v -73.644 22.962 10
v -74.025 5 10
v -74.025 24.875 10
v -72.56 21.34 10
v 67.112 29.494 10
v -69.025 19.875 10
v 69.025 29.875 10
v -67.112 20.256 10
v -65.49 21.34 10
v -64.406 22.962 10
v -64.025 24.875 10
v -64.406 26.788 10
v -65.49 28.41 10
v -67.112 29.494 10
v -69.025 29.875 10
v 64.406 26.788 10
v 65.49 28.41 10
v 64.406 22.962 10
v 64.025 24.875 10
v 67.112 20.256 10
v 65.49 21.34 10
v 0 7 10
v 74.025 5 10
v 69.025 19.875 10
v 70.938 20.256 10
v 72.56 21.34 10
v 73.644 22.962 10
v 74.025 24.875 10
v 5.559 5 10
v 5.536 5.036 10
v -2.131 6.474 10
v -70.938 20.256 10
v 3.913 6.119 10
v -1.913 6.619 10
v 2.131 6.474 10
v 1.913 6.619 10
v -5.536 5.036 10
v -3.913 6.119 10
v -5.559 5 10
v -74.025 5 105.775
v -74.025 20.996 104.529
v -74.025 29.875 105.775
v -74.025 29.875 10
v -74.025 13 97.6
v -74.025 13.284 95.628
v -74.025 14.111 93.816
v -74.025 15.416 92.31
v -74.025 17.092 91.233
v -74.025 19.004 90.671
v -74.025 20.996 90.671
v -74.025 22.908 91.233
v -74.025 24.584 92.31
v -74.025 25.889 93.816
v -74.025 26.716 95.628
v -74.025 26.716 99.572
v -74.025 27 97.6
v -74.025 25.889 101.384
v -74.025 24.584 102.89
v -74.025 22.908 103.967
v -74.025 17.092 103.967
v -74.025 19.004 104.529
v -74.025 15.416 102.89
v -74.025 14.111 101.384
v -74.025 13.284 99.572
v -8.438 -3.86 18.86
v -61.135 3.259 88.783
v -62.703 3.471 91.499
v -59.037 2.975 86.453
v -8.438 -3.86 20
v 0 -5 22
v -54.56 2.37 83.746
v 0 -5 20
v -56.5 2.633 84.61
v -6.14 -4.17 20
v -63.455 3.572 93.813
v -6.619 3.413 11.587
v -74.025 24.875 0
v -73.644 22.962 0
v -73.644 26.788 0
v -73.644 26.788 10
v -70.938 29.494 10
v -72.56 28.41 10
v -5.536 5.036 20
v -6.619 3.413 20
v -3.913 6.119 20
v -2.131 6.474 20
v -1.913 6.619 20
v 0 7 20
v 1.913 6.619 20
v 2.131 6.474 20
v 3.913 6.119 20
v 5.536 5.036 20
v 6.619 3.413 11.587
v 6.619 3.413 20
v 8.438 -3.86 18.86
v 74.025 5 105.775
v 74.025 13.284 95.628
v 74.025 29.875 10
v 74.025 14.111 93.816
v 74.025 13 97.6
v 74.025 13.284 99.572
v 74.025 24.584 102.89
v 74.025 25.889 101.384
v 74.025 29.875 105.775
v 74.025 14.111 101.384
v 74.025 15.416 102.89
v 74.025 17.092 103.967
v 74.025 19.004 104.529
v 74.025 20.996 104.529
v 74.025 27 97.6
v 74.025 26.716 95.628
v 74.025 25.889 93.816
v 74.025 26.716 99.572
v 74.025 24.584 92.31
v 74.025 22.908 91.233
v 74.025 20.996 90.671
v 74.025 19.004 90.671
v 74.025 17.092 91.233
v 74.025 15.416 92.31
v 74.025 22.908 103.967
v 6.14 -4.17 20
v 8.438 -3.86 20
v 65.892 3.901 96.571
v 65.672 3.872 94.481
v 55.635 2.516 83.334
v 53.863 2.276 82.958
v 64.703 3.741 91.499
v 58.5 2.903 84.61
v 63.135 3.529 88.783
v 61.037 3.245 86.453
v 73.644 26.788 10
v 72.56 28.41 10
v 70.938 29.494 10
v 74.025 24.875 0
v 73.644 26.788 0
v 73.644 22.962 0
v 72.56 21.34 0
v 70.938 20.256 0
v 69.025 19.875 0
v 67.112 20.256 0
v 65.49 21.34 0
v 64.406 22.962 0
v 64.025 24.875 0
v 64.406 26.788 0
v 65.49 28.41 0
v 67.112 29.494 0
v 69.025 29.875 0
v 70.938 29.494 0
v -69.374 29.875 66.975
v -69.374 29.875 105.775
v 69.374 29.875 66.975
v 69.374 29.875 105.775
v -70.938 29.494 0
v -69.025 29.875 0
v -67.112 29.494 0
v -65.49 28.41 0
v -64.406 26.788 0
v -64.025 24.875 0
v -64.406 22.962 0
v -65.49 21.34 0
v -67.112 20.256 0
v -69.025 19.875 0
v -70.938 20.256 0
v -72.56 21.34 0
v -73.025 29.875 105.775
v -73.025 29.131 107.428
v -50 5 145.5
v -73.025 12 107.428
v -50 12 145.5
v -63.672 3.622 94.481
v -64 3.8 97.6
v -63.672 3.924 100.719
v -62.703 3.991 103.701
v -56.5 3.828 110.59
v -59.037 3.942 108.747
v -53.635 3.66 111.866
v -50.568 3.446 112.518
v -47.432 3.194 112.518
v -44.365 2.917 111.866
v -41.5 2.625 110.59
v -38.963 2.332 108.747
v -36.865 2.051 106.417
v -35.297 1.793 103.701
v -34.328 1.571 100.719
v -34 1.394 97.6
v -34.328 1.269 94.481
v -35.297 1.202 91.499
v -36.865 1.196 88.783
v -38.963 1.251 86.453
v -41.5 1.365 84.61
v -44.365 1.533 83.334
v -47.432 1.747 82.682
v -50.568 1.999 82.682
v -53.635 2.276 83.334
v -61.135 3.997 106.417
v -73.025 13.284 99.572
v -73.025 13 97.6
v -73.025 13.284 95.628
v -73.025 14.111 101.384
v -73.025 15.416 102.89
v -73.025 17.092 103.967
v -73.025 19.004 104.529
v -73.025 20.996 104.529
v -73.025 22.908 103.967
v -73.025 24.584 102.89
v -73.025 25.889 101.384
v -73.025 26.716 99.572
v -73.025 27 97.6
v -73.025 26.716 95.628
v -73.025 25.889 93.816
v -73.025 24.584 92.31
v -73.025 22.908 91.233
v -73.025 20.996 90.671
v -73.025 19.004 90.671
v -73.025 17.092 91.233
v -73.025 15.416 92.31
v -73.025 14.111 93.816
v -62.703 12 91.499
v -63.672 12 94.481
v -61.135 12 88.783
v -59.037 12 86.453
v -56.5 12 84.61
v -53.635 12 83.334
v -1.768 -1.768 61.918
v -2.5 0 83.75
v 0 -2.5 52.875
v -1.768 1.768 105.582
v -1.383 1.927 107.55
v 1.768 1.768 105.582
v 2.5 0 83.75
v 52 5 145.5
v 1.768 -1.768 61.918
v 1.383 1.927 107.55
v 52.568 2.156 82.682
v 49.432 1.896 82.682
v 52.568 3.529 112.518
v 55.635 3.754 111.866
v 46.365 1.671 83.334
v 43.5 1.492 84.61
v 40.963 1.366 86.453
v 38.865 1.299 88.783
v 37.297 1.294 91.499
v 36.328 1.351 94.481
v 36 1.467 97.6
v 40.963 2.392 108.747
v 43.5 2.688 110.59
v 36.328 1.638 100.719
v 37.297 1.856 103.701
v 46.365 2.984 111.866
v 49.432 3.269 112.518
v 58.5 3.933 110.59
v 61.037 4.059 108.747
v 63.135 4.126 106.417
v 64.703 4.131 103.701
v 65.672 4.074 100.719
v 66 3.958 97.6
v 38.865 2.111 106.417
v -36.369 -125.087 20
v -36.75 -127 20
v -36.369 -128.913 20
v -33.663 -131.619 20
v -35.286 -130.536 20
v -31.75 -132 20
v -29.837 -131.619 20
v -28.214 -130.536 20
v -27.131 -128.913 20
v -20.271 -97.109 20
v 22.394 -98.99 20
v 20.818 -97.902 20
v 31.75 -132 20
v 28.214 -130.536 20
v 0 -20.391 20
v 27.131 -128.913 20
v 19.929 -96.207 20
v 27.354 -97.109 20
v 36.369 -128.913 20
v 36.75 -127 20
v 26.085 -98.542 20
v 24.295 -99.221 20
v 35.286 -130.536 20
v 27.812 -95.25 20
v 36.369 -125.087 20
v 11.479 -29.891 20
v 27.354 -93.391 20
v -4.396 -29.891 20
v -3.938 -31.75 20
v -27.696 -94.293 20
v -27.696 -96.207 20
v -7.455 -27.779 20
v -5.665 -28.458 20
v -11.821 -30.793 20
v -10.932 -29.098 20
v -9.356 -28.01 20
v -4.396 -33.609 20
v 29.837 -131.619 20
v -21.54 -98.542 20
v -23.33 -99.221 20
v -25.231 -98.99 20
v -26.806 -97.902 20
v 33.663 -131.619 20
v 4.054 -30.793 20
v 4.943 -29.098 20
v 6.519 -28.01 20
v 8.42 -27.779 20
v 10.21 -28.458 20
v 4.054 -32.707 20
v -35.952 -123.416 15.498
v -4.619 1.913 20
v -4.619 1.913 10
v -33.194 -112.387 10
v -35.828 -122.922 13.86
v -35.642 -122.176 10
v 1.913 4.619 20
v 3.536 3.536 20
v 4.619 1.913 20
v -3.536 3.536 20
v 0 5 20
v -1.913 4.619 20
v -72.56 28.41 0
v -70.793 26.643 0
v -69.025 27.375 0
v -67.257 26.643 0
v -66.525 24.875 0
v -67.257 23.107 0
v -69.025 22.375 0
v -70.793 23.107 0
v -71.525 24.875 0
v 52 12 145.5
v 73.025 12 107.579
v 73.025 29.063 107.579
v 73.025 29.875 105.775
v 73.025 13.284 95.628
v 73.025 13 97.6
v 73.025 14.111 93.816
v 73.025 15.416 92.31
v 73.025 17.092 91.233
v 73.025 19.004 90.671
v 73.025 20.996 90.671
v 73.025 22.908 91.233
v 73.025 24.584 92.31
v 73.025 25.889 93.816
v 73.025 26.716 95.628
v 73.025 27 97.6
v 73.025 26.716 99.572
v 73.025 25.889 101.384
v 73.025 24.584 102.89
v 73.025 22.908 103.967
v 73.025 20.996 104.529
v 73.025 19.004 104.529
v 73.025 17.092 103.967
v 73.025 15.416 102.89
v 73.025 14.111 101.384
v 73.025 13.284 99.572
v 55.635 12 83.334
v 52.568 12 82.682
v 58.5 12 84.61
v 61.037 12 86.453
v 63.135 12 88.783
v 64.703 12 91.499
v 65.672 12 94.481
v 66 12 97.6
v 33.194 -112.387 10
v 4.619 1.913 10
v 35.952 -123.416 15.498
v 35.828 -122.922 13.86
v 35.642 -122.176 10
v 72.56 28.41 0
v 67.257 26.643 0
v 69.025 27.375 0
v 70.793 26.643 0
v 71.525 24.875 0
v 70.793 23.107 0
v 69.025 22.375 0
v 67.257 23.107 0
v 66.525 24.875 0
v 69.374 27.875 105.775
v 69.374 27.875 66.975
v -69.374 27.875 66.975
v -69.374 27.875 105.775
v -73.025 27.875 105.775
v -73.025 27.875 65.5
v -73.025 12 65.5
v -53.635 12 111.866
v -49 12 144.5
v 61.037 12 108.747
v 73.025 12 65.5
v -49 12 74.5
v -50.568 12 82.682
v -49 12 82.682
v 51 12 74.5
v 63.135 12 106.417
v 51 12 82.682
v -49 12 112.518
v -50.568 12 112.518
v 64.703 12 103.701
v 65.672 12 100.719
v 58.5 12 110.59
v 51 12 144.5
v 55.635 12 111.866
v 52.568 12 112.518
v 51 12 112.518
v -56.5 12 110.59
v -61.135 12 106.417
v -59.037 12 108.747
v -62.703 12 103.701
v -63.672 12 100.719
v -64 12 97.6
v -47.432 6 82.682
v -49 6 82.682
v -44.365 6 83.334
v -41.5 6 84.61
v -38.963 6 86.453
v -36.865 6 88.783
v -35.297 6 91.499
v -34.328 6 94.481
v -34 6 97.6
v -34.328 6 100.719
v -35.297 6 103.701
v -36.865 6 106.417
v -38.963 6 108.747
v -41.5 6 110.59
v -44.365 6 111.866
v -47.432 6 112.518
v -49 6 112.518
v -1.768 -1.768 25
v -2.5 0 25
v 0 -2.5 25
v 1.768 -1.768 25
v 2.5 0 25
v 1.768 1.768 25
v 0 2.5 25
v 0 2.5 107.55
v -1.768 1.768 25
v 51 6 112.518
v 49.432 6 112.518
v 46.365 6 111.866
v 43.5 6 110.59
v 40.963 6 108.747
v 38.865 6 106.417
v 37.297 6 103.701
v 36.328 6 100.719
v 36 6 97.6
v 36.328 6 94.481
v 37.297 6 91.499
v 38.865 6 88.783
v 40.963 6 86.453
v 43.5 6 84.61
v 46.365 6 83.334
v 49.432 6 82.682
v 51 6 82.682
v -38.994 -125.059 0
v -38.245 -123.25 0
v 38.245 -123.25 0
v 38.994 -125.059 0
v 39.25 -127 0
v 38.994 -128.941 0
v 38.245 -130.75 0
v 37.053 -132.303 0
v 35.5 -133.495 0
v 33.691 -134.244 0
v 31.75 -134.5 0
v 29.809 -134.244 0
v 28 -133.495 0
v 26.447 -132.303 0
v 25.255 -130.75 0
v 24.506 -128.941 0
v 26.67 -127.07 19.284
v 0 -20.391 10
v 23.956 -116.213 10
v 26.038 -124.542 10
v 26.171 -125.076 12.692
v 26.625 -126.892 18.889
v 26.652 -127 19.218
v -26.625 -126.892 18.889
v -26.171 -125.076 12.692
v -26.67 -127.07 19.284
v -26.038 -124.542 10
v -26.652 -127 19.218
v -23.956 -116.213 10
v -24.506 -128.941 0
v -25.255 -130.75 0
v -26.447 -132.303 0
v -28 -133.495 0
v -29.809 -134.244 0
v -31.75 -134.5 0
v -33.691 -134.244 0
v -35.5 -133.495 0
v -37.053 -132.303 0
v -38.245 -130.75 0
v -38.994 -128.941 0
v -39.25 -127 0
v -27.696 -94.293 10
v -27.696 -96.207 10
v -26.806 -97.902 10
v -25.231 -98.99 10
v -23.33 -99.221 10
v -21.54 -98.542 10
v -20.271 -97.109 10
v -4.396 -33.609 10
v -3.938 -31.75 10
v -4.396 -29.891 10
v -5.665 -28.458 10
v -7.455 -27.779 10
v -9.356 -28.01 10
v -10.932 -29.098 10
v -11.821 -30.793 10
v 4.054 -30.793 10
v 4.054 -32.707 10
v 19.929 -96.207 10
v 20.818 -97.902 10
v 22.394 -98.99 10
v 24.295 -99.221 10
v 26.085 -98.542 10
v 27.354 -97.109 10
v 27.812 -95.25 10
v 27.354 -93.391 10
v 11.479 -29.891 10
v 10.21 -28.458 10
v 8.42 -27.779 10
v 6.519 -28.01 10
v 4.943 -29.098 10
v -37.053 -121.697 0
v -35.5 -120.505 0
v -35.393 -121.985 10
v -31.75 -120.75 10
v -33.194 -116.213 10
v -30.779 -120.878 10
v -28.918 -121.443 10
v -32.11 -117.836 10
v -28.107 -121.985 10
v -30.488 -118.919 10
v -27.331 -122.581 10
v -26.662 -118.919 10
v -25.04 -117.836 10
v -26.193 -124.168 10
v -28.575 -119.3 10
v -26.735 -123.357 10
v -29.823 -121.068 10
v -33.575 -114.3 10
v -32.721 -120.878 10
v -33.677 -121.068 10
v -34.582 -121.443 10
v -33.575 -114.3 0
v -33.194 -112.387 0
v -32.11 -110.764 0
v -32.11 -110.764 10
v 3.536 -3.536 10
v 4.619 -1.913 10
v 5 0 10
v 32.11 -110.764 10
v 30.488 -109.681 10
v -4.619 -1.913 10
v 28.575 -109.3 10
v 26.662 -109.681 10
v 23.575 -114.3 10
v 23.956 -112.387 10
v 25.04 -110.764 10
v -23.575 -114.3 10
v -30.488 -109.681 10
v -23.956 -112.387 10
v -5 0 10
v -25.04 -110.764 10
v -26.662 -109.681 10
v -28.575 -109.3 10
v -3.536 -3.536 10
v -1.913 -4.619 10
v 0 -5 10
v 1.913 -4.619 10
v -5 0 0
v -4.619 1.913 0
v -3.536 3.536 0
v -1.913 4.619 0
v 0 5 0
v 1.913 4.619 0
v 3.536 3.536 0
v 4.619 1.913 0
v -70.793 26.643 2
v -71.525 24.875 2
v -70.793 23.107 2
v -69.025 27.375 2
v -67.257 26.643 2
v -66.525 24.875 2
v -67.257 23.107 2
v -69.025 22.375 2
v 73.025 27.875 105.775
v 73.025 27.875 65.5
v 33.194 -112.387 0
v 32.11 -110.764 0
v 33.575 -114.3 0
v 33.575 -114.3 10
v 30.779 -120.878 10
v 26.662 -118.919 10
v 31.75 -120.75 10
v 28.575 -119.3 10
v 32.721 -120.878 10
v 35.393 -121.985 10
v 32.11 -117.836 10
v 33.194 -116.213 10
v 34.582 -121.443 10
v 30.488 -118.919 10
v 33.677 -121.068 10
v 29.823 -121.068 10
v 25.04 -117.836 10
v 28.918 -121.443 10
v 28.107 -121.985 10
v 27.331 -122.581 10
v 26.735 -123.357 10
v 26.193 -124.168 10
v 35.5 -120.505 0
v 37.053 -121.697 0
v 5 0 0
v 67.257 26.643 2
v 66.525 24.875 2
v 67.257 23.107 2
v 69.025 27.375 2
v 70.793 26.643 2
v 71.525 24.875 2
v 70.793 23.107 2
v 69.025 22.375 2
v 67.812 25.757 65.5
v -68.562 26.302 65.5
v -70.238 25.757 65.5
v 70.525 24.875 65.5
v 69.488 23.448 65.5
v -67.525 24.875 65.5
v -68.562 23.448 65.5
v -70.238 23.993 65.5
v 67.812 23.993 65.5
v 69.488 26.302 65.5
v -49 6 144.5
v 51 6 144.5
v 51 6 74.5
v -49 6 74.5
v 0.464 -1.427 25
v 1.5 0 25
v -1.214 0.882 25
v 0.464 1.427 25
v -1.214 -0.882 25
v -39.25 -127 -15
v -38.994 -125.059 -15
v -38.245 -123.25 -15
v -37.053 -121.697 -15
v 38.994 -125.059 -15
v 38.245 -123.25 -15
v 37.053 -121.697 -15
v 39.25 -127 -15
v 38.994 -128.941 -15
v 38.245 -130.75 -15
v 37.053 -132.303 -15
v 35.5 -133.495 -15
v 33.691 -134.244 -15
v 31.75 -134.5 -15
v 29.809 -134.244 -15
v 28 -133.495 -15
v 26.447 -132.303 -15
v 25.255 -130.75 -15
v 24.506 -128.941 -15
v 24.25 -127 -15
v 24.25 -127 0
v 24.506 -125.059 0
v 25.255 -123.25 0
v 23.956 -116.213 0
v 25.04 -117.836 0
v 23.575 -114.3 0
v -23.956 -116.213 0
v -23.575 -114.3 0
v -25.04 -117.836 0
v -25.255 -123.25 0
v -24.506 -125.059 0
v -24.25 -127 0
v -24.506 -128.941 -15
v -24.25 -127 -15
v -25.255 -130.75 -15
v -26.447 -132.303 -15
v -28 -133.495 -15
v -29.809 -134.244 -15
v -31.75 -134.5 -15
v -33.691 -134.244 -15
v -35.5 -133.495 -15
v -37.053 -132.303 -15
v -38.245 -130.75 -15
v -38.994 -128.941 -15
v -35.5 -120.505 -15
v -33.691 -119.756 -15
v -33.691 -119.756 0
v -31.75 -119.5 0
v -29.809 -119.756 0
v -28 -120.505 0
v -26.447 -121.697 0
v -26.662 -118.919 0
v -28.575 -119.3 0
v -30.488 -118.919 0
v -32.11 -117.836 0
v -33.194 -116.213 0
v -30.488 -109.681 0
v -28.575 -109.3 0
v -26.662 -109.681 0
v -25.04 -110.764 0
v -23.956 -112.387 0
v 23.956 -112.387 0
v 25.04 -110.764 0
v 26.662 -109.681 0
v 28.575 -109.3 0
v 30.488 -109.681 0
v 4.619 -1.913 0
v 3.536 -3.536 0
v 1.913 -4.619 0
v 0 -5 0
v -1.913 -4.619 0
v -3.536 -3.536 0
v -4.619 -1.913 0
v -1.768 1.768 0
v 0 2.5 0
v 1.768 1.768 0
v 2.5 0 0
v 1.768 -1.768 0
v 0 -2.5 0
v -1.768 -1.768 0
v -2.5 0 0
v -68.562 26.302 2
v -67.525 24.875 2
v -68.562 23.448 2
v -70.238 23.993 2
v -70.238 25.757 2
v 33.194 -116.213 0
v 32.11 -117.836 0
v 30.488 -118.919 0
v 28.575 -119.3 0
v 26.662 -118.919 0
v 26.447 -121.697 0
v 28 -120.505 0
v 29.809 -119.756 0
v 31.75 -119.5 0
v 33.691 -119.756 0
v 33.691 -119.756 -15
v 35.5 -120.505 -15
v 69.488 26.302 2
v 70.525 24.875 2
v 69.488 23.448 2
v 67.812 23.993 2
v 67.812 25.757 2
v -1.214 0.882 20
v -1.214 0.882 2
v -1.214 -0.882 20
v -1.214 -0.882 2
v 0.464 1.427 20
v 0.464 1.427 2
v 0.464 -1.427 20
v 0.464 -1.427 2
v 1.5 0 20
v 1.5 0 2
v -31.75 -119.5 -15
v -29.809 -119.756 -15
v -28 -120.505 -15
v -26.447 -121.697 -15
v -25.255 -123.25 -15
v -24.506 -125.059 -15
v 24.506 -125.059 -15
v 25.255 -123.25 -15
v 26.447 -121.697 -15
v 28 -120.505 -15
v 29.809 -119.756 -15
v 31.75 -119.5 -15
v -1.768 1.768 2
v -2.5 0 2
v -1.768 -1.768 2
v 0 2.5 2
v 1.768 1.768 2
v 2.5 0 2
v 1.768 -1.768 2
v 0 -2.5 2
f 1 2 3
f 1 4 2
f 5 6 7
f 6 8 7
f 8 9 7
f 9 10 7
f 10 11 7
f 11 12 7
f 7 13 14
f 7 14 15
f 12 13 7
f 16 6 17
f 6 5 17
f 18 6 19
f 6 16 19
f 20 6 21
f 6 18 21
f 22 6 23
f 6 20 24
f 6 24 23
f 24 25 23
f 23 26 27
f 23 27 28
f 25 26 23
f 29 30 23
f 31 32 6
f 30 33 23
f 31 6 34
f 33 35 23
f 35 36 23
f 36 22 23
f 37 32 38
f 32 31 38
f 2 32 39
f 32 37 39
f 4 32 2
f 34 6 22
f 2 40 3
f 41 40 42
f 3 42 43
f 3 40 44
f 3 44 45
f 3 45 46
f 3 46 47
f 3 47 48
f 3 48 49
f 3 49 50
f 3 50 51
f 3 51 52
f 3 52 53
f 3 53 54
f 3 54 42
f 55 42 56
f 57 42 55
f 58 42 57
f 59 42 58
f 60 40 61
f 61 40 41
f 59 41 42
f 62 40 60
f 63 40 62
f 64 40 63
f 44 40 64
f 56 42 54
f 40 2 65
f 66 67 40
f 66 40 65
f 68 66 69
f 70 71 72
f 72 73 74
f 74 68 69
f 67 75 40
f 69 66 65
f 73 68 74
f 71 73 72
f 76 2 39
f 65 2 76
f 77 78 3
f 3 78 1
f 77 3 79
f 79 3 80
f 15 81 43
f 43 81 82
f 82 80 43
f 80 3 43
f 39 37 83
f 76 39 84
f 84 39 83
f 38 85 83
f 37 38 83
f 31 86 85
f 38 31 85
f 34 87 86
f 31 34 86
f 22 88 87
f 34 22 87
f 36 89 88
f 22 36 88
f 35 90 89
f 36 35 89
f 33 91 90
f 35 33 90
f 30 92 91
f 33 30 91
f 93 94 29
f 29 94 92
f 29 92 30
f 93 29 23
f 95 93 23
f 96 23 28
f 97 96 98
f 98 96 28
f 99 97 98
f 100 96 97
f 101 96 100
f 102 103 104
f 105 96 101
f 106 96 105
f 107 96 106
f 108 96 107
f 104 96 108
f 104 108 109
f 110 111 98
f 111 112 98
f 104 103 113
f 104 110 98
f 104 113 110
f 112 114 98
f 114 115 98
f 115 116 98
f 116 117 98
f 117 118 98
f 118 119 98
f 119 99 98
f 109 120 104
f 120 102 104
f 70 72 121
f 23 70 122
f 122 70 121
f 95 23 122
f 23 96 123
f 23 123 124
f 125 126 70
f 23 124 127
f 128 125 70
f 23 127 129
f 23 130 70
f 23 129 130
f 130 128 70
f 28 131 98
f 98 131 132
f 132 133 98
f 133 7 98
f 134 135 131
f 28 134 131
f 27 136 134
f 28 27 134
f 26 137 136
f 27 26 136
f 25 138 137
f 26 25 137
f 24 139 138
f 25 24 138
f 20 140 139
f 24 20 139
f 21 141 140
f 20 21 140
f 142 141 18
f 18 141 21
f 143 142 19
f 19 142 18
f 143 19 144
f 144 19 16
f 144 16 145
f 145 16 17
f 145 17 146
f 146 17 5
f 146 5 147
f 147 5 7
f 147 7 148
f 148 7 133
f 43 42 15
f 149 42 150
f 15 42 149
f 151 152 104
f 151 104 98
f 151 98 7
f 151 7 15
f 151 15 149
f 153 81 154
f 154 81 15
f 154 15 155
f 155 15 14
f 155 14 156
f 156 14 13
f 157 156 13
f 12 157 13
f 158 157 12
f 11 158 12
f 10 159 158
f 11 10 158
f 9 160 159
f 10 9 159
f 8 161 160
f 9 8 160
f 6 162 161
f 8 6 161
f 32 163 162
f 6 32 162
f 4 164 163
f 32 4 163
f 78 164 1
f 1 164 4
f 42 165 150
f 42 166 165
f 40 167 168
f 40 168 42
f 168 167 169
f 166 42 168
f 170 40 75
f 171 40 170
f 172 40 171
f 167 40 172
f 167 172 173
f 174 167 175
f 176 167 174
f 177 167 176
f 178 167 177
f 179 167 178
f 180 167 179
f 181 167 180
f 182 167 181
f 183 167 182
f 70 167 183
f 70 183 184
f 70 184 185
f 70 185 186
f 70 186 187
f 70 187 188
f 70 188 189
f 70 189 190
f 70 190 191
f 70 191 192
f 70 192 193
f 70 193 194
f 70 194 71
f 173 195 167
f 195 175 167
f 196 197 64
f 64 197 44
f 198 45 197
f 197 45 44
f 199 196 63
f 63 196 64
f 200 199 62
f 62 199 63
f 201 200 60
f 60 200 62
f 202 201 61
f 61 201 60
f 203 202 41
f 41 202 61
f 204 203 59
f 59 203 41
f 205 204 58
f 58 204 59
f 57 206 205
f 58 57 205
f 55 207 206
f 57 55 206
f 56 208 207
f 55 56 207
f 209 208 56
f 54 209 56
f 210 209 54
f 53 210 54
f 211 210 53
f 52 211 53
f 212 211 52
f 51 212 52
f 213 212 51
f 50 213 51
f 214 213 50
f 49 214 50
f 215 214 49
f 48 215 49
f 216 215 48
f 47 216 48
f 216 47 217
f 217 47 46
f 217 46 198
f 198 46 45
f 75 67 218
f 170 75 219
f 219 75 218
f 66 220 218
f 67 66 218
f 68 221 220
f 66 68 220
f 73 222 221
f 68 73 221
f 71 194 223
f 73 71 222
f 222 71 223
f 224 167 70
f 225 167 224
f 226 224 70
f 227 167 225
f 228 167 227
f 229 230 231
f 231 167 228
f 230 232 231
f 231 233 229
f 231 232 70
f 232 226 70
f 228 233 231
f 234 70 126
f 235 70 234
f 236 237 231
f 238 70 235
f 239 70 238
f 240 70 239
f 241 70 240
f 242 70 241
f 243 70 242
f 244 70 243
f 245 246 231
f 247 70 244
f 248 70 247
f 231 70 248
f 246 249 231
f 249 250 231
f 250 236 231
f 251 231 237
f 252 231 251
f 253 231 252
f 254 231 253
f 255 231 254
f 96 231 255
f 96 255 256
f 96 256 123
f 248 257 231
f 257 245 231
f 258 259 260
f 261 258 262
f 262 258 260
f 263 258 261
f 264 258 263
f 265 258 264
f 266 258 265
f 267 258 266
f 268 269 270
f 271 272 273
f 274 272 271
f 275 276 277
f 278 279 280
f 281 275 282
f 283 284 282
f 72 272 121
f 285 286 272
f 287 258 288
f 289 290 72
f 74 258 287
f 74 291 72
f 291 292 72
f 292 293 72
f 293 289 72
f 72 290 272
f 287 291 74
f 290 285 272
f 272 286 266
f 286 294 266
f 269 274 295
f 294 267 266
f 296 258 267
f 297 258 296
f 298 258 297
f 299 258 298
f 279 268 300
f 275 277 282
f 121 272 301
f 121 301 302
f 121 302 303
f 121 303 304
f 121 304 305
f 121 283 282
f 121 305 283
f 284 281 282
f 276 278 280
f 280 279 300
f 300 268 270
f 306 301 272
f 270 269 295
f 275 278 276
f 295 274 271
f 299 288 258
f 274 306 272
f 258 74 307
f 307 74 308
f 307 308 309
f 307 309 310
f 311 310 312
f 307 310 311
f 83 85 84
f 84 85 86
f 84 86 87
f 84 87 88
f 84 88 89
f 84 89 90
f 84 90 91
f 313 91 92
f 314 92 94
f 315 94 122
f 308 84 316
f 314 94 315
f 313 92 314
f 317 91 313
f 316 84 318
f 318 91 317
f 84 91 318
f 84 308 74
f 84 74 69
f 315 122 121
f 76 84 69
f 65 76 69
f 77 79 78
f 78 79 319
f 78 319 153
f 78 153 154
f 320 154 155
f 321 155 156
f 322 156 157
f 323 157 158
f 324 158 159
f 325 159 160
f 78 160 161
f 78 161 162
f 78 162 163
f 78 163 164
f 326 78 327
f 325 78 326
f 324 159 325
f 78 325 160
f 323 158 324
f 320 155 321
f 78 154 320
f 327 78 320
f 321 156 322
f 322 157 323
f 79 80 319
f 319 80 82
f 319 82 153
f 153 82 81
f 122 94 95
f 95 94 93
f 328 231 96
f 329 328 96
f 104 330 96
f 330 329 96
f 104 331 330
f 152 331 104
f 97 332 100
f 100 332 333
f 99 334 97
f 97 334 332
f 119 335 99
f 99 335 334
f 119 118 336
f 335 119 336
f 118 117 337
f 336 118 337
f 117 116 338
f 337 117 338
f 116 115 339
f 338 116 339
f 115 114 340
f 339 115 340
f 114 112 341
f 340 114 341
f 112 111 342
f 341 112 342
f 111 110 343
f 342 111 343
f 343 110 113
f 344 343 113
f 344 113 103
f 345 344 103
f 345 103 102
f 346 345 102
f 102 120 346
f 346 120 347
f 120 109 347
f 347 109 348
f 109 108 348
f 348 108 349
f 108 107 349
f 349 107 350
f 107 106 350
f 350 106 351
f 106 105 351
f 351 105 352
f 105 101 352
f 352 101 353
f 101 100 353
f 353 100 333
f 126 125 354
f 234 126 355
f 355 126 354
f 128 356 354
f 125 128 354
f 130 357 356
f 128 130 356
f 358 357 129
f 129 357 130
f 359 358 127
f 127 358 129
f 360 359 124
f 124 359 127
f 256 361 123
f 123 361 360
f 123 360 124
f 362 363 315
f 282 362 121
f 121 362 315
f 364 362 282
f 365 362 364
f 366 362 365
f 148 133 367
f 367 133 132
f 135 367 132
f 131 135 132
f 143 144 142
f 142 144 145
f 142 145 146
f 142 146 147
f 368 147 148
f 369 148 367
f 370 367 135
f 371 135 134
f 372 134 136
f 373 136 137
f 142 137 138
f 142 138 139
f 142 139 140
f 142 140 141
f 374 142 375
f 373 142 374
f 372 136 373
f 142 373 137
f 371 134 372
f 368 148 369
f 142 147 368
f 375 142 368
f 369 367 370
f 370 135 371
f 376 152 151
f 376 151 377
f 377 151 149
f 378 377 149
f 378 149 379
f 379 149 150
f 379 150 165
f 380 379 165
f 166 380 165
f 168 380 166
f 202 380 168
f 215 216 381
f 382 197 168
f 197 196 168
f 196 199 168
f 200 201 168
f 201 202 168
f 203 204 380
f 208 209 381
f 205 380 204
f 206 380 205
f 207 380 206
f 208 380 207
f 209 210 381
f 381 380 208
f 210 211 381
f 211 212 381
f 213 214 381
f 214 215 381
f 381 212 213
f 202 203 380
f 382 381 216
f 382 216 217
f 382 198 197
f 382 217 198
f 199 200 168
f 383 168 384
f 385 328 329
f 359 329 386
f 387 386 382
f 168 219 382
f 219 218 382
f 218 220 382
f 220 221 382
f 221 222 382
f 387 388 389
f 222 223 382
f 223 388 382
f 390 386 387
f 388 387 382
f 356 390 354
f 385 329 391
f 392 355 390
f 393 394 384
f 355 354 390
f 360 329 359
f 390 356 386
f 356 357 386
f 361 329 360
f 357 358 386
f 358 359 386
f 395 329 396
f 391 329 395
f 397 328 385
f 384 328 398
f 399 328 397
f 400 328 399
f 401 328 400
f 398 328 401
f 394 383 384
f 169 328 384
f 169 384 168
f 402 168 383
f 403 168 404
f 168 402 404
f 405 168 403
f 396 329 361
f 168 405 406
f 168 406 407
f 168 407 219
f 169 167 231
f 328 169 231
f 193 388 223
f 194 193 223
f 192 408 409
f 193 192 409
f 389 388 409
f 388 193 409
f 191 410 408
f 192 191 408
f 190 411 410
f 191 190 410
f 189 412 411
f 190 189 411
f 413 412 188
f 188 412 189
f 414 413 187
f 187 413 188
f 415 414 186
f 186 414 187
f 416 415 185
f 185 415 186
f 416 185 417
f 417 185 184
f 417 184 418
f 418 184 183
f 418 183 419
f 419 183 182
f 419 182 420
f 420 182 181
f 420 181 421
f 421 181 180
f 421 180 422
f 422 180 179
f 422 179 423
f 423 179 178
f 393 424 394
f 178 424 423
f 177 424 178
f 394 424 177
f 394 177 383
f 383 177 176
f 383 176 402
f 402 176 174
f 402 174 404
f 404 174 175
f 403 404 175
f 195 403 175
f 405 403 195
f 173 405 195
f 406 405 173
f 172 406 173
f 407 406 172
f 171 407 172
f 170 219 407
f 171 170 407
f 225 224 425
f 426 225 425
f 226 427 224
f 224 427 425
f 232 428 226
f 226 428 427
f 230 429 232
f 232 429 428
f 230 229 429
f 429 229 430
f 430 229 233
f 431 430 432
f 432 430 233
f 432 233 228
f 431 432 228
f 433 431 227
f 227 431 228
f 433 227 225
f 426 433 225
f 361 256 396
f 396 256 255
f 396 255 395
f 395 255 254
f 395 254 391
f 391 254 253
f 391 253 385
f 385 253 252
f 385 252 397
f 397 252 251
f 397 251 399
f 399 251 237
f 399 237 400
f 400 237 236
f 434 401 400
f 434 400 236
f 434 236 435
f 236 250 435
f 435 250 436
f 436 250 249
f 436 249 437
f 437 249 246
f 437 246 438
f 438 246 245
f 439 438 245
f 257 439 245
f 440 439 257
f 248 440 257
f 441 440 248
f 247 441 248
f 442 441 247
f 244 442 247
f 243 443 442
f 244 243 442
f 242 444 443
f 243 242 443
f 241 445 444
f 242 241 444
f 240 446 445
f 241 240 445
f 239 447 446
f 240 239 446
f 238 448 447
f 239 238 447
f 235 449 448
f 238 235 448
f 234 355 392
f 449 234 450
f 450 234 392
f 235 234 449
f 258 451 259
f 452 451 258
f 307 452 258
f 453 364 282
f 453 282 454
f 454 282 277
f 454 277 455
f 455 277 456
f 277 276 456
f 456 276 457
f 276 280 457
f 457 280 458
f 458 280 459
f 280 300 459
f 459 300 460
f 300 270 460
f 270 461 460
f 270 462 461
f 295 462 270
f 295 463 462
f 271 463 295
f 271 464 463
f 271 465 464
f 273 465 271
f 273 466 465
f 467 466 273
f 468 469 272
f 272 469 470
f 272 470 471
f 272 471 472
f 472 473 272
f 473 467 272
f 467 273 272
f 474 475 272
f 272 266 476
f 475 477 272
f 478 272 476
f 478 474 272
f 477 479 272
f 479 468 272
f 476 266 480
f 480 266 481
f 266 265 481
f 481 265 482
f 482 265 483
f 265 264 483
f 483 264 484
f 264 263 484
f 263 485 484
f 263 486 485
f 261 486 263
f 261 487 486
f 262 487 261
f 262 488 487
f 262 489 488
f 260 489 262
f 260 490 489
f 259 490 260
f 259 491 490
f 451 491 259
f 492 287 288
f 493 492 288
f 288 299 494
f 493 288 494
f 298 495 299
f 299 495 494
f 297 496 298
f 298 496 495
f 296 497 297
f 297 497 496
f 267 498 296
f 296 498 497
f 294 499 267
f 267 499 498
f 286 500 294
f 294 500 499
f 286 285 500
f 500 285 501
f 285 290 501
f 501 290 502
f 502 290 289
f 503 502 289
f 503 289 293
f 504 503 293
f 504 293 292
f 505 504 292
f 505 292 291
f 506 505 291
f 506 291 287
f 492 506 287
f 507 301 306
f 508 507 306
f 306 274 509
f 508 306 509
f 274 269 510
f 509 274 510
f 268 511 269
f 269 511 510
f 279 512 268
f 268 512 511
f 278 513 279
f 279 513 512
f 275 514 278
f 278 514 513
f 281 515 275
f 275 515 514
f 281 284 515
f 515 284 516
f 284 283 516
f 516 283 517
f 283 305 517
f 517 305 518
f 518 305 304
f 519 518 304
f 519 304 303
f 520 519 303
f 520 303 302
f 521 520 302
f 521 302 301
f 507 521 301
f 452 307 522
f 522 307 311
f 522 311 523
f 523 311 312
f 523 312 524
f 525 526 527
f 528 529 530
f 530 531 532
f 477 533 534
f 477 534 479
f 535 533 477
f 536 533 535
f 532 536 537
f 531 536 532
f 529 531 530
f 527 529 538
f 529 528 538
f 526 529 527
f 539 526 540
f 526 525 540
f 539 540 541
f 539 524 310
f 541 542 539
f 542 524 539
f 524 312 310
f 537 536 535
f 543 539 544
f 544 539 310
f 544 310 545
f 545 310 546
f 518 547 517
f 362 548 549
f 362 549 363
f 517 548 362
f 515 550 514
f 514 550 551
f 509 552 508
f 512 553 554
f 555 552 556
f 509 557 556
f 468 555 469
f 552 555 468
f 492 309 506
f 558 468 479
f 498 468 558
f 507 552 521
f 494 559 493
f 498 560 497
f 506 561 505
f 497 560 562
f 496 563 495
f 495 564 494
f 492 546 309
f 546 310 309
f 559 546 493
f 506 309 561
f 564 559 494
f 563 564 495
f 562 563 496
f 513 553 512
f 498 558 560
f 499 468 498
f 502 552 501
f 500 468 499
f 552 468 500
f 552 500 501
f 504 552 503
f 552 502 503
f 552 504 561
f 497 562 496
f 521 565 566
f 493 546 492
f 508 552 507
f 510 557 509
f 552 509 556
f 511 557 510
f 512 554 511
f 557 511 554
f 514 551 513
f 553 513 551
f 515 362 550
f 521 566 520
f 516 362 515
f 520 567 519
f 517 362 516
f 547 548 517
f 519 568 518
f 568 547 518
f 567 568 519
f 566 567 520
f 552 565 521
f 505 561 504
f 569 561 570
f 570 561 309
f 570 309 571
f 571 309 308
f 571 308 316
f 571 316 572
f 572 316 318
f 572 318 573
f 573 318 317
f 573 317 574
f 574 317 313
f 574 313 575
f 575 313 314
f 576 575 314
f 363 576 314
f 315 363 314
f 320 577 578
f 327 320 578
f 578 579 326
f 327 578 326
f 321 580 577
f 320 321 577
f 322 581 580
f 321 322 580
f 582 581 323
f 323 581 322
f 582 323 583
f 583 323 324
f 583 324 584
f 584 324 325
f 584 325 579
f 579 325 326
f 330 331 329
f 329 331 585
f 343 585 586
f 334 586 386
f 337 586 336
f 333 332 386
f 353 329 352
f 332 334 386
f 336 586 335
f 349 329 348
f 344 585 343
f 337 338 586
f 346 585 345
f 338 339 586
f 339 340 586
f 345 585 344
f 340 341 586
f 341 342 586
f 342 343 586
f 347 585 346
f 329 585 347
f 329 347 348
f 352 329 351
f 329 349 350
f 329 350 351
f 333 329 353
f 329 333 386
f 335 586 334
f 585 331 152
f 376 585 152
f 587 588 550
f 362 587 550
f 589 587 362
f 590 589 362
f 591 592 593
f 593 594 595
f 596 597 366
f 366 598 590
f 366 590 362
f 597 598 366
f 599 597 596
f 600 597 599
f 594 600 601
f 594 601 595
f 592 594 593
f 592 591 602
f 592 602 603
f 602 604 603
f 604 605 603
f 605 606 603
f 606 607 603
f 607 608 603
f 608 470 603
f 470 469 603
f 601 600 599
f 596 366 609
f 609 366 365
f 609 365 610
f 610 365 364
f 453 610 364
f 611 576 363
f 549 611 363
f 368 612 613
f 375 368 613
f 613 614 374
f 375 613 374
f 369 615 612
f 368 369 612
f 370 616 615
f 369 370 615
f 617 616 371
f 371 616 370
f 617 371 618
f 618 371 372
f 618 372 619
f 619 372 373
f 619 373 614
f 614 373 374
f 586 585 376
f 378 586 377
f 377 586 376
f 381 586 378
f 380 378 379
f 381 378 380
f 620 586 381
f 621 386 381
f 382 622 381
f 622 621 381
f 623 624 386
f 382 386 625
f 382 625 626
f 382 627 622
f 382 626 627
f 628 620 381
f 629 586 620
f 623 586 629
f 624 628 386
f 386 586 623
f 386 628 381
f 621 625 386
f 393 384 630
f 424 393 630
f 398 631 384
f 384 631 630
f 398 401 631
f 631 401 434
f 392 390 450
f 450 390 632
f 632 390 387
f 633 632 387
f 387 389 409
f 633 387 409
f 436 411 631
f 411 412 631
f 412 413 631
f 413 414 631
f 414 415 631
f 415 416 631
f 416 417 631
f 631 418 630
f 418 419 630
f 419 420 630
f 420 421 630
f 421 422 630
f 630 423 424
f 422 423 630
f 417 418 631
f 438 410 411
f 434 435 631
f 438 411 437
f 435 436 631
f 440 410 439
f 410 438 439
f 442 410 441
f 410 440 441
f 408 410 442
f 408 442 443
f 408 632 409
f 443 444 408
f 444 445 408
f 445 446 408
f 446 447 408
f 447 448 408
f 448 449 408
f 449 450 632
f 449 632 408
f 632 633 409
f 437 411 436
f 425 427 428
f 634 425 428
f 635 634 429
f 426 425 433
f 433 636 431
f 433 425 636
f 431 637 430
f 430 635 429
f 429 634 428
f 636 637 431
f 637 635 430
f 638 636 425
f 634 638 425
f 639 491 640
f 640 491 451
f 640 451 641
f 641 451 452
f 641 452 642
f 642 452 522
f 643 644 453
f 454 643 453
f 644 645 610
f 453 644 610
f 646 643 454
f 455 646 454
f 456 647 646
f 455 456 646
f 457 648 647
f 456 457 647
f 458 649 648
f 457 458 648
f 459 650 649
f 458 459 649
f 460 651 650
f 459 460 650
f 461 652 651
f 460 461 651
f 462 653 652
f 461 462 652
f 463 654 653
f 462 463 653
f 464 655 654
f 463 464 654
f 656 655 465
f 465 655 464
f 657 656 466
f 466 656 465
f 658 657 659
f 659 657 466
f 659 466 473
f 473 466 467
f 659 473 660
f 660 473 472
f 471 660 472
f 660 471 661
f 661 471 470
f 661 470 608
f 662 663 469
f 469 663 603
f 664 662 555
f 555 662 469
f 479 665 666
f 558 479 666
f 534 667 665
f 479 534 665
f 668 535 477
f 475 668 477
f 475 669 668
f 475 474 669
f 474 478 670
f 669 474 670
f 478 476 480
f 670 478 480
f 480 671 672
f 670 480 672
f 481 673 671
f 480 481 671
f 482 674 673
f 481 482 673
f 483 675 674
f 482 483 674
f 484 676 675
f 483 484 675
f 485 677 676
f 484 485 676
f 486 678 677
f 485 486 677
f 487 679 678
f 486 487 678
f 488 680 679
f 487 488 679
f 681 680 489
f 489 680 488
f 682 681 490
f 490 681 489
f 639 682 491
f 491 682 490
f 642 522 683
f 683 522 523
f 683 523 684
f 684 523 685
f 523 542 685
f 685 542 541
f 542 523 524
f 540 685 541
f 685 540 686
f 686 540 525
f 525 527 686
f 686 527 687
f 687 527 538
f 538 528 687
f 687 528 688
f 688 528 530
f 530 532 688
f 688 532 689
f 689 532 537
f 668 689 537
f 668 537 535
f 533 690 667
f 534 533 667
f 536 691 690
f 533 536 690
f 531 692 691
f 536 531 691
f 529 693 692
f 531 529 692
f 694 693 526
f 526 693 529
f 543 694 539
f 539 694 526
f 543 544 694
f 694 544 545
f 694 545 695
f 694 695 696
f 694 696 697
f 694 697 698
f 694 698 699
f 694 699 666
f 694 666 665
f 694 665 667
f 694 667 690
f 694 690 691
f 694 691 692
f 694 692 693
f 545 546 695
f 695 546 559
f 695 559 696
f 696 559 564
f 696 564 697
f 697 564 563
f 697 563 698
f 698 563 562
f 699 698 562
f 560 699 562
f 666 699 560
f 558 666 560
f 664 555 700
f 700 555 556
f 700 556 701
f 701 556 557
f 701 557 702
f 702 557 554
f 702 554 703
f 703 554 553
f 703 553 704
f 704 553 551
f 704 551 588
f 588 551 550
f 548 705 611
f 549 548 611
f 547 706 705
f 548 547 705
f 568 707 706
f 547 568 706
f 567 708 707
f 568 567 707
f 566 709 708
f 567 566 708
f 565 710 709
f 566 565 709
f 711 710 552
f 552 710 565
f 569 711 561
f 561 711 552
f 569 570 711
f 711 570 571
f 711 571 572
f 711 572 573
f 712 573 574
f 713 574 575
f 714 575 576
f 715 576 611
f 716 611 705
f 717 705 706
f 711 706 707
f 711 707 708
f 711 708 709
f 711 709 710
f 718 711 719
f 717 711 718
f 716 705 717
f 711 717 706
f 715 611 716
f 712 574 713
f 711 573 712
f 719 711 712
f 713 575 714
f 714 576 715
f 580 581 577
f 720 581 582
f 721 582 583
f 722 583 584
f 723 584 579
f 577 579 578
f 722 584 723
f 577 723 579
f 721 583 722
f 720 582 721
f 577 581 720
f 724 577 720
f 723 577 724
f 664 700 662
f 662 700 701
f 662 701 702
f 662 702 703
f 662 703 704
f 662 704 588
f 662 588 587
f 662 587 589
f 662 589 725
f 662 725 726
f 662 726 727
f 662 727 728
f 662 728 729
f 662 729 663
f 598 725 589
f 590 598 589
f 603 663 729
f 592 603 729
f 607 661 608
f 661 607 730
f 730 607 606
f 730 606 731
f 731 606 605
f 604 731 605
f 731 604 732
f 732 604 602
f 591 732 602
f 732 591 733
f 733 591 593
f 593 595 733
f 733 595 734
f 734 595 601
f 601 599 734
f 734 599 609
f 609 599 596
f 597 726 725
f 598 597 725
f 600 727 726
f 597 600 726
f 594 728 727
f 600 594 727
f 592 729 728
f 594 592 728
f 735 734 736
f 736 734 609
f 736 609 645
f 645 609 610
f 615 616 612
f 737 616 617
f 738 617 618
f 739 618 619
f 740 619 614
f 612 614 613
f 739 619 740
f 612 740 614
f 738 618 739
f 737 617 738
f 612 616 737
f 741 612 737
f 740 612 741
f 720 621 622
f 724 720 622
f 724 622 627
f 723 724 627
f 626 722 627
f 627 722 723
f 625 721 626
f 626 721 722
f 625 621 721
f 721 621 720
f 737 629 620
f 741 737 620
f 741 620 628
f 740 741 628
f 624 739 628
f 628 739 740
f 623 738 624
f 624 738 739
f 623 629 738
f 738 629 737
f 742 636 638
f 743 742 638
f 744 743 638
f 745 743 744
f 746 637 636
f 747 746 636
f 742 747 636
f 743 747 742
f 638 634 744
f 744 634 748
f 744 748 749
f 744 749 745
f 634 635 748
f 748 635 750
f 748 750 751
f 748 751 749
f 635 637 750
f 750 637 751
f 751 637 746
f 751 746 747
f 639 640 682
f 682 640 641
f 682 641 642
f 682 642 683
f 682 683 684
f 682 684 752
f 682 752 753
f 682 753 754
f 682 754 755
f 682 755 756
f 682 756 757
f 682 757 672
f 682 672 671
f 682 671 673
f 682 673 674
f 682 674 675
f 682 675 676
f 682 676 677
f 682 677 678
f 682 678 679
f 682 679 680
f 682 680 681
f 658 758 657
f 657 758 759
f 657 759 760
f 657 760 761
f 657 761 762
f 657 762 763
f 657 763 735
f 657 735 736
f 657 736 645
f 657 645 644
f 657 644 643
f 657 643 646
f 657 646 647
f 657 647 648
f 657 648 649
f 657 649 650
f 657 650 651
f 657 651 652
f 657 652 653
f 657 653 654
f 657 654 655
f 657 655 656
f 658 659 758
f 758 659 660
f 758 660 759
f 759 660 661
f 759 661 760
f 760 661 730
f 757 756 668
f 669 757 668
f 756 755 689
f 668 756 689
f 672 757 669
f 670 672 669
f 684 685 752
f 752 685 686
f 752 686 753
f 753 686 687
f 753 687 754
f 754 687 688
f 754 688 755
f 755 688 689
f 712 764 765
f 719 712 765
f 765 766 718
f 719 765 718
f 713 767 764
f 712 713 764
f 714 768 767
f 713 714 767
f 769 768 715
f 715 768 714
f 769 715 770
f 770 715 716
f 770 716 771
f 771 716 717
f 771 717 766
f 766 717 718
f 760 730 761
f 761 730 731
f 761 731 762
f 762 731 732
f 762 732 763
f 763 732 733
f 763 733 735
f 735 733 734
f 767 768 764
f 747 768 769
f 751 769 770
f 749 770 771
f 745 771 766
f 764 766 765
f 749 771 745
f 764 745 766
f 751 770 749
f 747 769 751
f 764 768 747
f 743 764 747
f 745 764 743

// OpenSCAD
StandoffHeight = 10;

DashVentHoleWidth = 2.5 * 25.4;
DashVentHoleSize = 15;
DepthIntoVentHoles = 15;
SparWidth = 10;
SparThickness = 10;

StepBackFromDashHoles = 5 * 25.4;
HeightToSeeOverWipers = 2.5 * 25.4;

QiChargerWidth = 100;
QiChargerHeight = 70;
QiChargerDepth = 6;

PhoneWidth = 5.75 * 25.4;
PhoneHeight= 3.25 * 25.4;
PhoneDepth= 5/8 * 25.4;

CameraFromEdge = 1.5 * 25.4;
CameraFromBottom = 1.5 * 25.4;



// Phone model
% phone();

mount();
Holder();

//rotate([180, 0, 0]){ 
//mount();

// Left Leg
difference()
{
	translate([PhoneWidth/2 + 1 - SparThickness/2, PhoneDepth + QiChargerDepth +3, 0]) 	cylinder(d=SparWidth, h=SparThickness); // Left peg
	// Lets making a mouting hole
	translate([PhoneWidth/2 + 1 - SparThickness/2, PhoneDepth + QiChargerDepth +3, 0]) 	cylinder(d=3, h=PhoneHeight); // hole
	translate([PhoneWidth/2 + 1 - SparThickness/2, PhoneDepth + QiChargerDepth +3, 0]) 	cylinder(d=SparThickness /2 , h=2); // origin peg
}

//right leg
difference()
{
translate([-(PhoneWidth/2 + 1 - SparThickness/2), PhoneDepth + QiChargerDepth +3, 0]) 	cylinder(d=SparWidth, h=SparThickness); // Right peg
// Lets making a mouting hole
	translate([-(PhoneWidth/2 + 1 - SparThickness/2), PhoneDepth + QiChargerDepth +3, 0])	cylinder(d=3, h=PhoneHeight); // hole
	translate([-(PhoneWidth/2 + 1 - SparThickness/2), PhoneDepth + QiChargerDepth +3, 0]) 	cylinder(d=SparThickness /2 , h=2); // origin peg
}

//}




















module Holder()
{
	difference()
	{
	hull()
	{
		// Qi Charger location
		translate([-QiChargerWidth/2, SparWidth/2 , StandoffHeight + SparThickness + HeightToSeeOverWipers - StandoffHeight]) cube([QiChargerWidth+2,QiChargerDepth+1, QiChargerHeight+2 ]);
	
		//Mounting Tab
		translate([0,0,StandoffHeight + SparThickness]) cylinder(d=SparWidth, h=2);
	
		// Top of front cradle
		translate([-PhoneWidth/2 -1, SparWidth/2 , StandoffHeight + (PhoneHeight * .5) + HeightToSeeOverWipers - StandoffHeight])  cube([PhoneWidth +2, PhoneDepth + 2 + QiChargerDepth+1, 1]);
		// bottom of front cradle
		translate([-PhoneWidth/2 -1, SparWidth/2 , StandoffHeight] )  cube([PhoneWidth +2, PhoneDepth + 2 + QiChargerDepth+1, 1]);
	}
	
	phone();
	// knock out Qi Charger location
	translate([-QiChargerWidth/2+1, SparWidth/2+1 , StandoffHeight +SparThickness +1 + HeightToSeeOverWipers - StandoffHeight]) cube([QiChargerWidth,QiChargerDepth, QiChargerHeight ]);
	// Need to angle the top..
	
	// Slot for the front mount
	mount();
	translate([0, 2, 0]) mount();
	translate([2, 1.5, 0]) mount();mount();
	translate([-2, 1.5, 0]) mount();
	
	// Lets making a mouting hole
	cylinder(d=3, h=PhoneHeight); // hole
	translate([0,0,StandoffHeight +SparThickness +5]) cylinder(d=SparThickness /2 , h=PhoneHeight); // origin peg
	
	// Knock out the screen view area
	translate([0, PhoneDepth/2, PhoneHeight / 2 -1])  phone();
	scale([.95, .95, .95]) translate([0, PhoneDepth/2, 5])  phone();

	//rear mounting holes
	translate([PhoneWidth/2 + 1 - SparThickness/2, PhoneDepth + QiChargerDepth +3, 0]) 	cylinder(d=3, h=PhoneHeight); // Left hole
	translate([-(PhoneWidth/2 + 1 - SparThickness/2), PhoneDepth + QiChargerDepth +3, 0])	cylinder(d=3, h=PhoneHeight); // right hole

	// camera hole
	translate([-QiChargerWidth/2+1, 50 , StandoffHeight +SparThickness +1 + HeightToSeeOverWipers - StandoffHeight + CameraFromBottom - 15]) rotate([90,0,0])  cylinder(r=15, h=100);
	translate([QiChargerWidth/2+1, 50 , StandoffHeight +SparThickness +1 + HeightToSeeOverWipers - StandoffHeight + CameraFromBottom - 15]) rotate([90,0,0])  cylinder(r=15, h=100);
	
	// charger hole
	translate([-150, 20 , StandoffHeight +SparThickness +1 + HeightToSeeOverWipers - StandoffHeight + CameraFromBottom - 15]) rotate([90,0,90])  cylinder(r=7, h=300);

	}
}


module phone()
{
	translate([-PhoneWidth/2, SparWidth/2 + QiChargerDepth+1 , StandoffHeight + 2 + HeightToSeeOverWipers - StandoffHeight]) cube([PhoneWidth,PhoneDepth, PhoneHeight ]);
}



// Easier to drop points where we want them and hull them together then to try to do the trig to rotate and size stuff

module mount()
{
difference()
{
	union()
	{
		cylinder(d=SparWidth, h=SparThickness); // origin peg
		
			translate([ DashVentHoleWidth/2 * .9, -StepBackFromDashHoles * .9, 0] ) cylinder(d=SparWidth, h=SparThickness); // left leg
			translate([ -DashVentHoleWidth/2* .9, -StepBackFromDashHoles* .9, 0] ) cylinder(d=SparWidth, h=SparThickness); // right leg
		
		// Left Arm
		difference()
		{
			hull() 
			{
				translate([0,0,StandoffHeight]) cylinder(d=SparWidth, h=SparThickness);
				translate([ DashVentHoleWidth/2, -StepBackFromDashHoles, StandoffHeight] ) cylinder(d=SparWidth, h=SparThickness);
			}
			hull() 
			{
				translate([DashVentHoleWidth/2  * .25, -StepBackFromDashHoles * .25,StandoffHeight]) cylinder(d=SparWidth -2, h=SparThickness);
				translate([ DashVentHoleWidth/2  * .75, -StepBackFromDashHoles * .75, StandoffHeight] ) cylinder(d=SparWidth -2, h=SparThickness);
			}
		}


		//Right Arm
		difference()
		{
			hull() 
			{
				translate([0,0,StandoffHeight]) cylinder(d=SparWidth, h=SparThickness);
				translate([ -DashVentHoleWidth/2, -StepBackFromDashHoles, StandoffHeight] ) cylinder(d=SparWidth, h=SparThickness);
			}
			hull() 
			{
				translate([-DashVentHoleWidth/2  * .25, -StepBackFromDashHoles * .25,StandoffHeight]) cylinder(d=SparWidth -2, h=SparThickness);
				translate([ -DashVentHoleWidth/2  * .75, -StepBackFromDashHoles * .75, StandoffHeight] ) cylinder(d=SparWidth -2, h=SparThickness);
			}
		}
		

		// Dash Pegs
		hull() //left side
		{
			translate([ DashVentHoleWidth/2, -StepBackFromDashHoles, StandoffHeight] ) cylinder(d=SparWidth, h=SparThickness);
			translate([ DashVentHoleWidth/2, -StepBackFromDashHoles, -DepthIntoVentHoles] ) cylinder(d=DashVentHoleSize, h=DepthIntoVentHoles);
		}
		
		hull() // right side
		{
			translate([ -DashVentHoleWidth/2, -StepBackFromDashHoles, StandoffHeight] ) cylinder(d=SparWidth, h=SparThickness);
			translate([ -DashVentHoleWidth/2, -StepBackFromDashHoles, -DepthIntoVentHoles] ) cylinder(d=DashVentHoleSize, h=DepthIntoVentHoles);
		}
	}

	// Lets making a mouting hole
	cylinder(d=3, h=SparThickness*2); // hole
	cylinder(d=SparThickness /2 , h=2); // origin peg

}
}
